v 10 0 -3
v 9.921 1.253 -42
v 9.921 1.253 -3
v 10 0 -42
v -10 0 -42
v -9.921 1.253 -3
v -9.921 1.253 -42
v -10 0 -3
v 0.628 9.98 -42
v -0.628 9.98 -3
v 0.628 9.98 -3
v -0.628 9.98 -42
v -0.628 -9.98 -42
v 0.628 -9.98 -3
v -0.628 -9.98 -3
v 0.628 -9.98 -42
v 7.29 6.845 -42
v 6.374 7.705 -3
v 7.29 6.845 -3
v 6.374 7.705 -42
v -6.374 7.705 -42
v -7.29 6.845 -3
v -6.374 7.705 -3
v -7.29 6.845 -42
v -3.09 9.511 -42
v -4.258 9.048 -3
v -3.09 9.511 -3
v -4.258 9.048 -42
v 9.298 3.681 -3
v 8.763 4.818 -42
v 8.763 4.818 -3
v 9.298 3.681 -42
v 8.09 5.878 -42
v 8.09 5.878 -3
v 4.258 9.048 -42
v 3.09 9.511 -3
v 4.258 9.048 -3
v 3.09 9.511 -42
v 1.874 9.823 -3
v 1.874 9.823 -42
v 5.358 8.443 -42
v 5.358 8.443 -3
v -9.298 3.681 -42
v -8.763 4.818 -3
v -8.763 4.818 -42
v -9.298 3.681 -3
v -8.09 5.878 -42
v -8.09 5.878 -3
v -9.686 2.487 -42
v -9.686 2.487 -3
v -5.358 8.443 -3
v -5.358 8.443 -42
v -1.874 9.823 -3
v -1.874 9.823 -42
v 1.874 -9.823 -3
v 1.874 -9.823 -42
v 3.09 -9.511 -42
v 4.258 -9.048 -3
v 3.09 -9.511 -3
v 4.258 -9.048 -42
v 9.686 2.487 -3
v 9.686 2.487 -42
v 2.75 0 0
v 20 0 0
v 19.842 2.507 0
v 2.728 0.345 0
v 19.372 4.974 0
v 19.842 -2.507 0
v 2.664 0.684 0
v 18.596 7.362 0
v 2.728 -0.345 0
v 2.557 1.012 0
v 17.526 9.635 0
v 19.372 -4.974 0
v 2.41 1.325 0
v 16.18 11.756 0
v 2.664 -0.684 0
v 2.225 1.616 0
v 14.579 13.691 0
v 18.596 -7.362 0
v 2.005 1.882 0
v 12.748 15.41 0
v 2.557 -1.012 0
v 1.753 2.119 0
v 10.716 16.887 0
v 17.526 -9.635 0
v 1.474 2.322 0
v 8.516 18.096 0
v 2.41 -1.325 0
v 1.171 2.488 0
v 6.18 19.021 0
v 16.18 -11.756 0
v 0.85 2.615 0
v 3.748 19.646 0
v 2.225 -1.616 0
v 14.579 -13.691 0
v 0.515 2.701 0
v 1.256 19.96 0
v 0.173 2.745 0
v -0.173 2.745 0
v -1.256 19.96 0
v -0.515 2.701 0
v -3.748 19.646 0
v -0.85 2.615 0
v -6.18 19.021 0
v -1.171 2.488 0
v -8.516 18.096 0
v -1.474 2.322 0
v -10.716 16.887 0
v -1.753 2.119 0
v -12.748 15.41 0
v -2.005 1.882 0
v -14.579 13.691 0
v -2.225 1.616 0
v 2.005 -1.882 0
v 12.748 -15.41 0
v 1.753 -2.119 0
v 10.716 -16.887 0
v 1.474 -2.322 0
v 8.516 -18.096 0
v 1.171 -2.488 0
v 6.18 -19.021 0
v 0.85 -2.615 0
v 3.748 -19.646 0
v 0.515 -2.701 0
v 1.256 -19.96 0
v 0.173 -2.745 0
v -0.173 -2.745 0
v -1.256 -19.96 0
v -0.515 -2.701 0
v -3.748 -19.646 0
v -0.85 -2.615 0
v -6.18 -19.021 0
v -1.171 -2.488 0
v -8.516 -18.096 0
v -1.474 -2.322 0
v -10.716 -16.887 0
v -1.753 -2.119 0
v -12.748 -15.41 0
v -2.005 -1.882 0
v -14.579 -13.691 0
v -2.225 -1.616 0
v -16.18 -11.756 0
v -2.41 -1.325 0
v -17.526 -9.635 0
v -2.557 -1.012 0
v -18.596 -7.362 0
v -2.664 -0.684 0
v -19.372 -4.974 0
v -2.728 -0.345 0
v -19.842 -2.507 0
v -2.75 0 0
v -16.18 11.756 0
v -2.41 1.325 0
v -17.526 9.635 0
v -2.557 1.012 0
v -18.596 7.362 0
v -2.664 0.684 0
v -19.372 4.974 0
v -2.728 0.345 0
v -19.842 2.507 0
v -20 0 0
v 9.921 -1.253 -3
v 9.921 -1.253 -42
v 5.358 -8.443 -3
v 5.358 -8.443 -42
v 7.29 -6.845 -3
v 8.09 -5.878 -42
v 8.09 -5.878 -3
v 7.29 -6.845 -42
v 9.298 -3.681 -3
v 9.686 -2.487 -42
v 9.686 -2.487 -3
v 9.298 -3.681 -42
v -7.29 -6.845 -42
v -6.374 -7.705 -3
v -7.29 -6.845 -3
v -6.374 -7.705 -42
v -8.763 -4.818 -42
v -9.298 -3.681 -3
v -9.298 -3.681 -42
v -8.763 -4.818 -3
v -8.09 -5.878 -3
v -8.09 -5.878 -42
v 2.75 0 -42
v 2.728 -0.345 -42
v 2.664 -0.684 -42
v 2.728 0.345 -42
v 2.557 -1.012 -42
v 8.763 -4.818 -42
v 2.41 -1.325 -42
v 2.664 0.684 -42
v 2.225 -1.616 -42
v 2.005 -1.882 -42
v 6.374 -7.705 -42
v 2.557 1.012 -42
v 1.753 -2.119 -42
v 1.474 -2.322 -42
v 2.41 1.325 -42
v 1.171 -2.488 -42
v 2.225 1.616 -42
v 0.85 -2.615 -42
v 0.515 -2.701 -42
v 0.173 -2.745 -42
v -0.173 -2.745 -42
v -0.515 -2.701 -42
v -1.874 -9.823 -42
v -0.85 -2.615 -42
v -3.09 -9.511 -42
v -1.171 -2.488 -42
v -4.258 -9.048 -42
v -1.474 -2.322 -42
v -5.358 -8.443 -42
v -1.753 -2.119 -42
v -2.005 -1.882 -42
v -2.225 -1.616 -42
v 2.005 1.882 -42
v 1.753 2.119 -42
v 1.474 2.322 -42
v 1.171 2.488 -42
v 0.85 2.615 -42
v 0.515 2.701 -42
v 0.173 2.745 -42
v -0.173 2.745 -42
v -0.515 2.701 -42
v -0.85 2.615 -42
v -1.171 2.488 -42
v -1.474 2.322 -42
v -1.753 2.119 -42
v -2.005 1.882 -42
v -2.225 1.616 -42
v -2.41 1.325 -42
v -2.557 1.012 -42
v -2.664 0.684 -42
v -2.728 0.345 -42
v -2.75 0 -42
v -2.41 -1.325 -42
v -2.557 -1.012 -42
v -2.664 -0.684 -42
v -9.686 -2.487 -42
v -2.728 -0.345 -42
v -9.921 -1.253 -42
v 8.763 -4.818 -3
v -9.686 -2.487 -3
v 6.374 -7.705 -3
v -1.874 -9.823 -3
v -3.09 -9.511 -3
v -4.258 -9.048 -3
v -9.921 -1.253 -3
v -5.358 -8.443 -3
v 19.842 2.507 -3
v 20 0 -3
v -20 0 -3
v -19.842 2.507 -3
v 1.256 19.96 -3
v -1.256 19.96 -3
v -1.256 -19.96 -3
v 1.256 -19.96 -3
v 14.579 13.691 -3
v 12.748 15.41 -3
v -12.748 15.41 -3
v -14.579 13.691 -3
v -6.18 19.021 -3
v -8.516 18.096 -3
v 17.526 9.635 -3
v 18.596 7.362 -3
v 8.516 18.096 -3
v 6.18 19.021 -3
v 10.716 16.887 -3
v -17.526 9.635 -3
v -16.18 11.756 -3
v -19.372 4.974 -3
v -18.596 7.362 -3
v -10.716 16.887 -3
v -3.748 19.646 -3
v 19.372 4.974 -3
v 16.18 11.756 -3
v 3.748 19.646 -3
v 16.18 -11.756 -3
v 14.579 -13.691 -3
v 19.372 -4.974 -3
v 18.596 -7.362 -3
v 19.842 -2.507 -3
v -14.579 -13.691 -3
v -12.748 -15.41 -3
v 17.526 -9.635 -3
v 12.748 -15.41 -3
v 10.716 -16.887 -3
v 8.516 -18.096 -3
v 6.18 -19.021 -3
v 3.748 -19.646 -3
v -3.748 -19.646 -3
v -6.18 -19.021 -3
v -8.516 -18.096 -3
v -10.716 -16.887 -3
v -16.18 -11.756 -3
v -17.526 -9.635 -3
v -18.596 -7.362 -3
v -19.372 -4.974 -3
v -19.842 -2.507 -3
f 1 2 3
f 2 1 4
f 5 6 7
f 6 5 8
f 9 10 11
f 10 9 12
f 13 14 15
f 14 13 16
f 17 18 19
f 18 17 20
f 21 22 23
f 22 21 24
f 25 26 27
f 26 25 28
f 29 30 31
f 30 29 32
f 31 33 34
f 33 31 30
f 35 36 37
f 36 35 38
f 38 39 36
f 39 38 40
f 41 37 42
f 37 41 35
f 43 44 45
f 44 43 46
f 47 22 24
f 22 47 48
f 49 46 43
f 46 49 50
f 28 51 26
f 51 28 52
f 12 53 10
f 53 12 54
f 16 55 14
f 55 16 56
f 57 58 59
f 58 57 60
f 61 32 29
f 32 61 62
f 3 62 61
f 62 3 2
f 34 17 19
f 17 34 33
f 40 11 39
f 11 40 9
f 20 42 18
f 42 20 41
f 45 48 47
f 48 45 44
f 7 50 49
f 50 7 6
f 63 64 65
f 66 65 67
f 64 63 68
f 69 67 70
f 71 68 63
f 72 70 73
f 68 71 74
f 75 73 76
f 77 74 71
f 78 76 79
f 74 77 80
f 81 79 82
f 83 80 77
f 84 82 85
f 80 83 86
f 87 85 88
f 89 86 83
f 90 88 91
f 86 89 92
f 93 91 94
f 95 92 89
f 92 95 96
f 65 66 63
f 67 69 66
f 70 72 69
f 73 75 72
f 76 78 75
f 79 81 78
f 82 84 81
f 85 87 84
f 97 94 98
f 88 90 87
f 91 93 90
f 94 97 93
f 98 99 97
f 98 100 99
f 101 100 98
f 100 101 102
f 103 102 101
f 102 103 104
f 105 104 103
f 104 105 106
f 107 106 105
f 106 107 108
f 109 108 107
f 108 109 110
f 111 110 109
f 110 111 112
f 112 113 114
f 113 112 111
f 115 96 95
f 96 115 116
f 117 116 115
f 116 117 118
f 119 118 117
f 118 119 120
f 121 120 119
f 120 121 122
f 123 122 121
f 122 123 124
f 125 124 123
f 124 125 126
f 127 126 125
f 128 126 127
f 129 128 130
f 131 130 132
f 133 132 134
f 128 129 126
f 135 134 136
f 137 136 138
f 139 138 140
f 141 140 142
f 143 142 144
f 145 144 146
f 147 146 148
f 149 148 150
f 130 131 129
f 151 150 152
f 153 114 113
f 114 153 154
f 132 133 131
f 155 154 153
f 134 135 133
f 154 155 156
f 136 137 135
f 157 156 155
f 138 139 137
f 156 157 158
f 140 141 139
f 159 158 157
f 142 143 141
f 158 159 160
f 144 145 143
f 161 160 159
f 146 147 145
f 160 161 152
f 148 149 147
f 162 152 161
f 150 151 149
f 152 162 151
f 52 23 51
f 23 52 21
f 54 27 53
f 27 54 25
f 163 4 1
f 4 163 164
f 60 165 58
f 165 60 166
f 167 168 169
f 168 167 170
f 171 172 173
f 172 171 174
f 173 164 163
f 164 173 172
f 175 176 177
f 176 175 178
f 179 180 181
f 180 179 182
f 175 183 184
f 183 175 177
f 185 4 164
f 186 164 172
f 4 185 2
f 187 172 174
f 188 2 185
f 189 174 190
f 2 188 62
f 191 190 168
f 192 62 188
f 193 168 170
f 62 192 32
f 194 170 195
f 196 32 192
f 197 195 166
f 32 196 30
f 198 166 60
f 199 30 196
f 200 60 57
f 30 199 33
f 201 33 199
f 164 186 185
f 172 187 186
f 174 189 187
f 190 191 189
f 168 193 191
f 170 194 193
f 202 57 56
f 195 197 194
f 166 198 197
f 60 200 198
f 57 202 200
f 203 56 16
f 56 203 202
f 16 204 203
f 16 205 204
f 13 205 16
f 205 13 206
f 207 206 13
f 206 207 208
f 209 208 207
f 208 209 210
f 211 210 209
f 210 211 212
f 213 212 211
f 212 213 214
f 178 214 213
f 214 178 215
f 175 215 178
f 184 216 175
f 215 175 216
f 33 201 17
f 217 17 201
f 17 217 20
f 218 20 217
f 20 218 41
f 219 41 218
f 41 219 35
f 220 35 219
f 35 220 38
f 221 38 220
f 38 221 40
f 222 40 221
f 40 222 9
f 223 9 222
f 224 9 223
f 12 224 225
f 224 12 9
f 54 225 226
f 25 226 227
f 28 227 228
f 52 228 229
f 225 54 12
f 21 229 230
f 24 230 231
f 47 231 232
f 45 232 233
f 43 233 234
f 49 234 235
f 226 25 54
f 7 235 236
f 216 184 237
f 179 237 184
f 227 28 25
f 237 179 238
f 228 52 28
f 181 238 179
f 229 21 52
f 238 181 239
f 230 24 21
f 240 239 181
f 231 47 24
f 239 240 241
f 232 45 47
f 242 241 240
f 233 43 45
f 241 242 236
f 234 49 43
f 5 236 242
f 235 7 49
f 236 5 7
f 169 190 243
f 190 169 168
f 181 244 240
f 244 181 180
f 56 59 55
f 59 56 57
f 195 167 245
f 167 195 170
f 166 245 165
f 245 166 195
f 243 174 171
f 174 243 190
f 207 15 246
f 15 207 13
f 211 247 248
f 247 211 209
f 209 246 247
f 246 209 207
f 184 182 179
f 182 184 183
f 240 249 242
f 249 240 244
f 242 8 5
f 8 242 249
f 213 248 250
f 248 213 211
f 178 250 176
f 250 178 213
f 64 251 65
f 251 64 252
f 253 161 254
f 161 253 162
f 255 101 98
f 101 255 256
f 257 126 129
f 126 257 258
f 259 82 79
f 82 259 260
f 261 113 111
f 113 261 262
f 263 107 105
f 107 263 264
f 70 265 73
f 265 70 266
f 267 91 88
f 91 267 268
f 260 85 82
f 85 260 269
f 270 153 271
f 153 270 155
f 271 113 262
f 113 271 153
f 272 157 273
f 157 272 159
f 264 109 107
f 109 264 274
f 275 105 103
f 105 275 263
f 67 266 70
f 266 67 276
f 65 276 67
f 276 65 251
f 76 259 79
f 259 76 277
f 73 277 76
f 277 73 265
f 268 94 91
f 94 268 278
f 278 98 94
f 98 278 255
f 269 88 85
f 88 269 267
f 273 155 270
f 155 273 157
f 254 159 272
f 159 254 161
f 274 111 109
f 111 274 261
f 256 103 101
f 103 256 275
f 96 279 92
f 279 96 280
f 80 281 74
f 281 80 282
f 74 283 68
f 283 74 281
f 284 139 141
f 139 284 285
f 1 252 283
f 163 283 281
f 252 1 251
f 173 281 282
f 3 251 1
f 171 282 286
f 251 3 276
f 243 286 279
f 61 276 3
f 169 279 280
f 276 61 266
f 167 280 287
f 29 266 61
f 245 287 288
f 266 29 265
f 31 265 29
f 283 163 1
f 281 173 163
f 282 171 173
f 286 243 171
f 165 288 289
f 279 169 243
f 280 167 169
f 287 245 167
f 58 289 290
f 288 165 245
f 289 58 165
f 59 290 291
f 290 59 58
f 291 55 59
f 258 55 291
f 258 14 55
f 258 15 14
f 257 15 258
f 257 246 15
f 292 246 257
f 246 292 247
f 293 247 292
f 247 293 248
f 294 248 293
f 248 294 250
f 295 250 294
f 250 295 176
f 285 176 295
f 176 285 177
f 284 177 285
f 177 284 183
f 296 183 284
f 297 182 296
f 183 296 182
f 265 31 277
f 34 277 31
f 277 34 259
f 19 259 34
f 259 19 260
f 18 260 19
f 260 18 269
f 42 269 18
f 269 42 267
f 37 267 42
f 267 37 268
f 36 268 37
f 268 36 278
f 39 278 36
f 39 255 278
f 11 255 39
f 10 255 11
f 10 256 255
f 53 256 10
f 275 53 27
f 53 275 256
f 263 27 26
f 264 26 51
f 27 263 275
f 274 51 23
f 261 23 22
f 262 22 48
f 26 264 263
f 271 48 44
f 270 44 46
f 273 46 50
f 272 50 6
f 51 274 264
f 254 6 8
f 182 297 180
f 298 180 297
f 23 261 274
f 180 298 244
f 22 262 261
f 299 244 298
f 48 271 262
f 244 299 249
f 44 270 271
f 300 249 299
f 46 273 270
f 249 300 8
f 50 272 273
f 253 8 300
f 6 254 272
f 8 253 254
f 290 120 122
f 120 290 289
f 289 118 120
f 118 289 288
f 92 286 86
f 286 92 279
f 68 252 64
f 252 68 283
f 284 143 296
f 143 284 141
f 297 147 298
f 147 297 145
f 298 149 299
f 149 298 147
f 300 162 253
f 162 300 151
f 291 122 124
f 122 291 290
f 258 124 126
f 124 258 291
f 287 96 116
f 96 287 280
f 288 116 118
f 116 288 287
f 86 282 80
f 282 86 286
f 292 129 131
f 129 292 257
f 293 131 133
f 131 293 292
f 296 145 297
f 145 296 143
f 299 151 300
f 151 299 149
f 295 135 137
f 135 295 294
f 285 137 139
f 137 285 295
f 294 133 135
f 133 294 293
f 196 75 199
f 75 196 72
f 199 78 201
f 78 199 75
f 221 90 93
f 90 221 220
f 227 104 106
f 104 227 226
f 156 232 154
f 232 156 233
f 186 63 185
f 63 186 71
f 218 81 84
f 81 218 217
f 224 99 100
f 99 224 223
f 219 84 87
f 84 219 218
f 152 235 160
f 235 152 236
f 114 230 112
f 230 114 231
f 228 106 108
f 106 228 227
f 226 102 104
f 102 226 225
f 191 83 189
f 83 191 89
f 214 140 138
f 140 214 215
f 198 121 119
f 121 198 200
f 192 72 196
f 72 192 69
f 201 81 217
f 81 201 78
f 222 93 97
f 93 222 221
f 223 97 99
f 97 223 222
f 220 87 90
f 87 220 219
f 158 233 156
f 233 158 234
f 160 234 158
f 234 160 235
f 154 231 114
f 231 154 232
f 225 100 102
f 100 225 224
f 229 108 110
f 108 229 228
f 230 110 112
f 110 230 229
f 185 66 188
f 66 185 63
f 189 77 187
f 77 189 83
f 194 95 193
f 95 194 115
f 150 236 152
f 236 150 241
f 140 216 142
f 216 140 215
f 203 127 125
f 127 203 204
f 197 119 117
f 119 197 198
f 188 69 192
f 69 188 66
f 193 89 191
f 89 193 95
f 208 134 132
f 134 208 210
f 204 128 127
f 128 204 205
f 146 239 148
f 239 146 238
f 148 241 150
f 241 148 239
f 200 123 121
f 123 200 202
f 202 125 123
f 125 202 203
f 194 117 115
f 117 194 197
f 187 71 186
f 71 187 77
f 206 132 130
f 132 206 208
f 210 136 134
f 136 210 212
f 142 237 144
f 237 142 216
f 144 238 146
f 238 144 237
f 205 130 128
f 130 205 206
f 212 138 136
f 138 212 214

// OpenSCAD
$fn = 50;


difference() {
	union() {
		translate(v = [0, 0, -42.0000000000]) {
			cylinder(h = 42, r = 10.0000000000);
		}
		translate(v = [0, 0, -3.0000000000]) {
			cylinder(h = 3, r = 20.0000000000);
		}
	}
	union() {
		#translate(v = [0, 0, -42]) {
			cylinder(h = 42, r = 2.7500000000);
		}
	}
}
